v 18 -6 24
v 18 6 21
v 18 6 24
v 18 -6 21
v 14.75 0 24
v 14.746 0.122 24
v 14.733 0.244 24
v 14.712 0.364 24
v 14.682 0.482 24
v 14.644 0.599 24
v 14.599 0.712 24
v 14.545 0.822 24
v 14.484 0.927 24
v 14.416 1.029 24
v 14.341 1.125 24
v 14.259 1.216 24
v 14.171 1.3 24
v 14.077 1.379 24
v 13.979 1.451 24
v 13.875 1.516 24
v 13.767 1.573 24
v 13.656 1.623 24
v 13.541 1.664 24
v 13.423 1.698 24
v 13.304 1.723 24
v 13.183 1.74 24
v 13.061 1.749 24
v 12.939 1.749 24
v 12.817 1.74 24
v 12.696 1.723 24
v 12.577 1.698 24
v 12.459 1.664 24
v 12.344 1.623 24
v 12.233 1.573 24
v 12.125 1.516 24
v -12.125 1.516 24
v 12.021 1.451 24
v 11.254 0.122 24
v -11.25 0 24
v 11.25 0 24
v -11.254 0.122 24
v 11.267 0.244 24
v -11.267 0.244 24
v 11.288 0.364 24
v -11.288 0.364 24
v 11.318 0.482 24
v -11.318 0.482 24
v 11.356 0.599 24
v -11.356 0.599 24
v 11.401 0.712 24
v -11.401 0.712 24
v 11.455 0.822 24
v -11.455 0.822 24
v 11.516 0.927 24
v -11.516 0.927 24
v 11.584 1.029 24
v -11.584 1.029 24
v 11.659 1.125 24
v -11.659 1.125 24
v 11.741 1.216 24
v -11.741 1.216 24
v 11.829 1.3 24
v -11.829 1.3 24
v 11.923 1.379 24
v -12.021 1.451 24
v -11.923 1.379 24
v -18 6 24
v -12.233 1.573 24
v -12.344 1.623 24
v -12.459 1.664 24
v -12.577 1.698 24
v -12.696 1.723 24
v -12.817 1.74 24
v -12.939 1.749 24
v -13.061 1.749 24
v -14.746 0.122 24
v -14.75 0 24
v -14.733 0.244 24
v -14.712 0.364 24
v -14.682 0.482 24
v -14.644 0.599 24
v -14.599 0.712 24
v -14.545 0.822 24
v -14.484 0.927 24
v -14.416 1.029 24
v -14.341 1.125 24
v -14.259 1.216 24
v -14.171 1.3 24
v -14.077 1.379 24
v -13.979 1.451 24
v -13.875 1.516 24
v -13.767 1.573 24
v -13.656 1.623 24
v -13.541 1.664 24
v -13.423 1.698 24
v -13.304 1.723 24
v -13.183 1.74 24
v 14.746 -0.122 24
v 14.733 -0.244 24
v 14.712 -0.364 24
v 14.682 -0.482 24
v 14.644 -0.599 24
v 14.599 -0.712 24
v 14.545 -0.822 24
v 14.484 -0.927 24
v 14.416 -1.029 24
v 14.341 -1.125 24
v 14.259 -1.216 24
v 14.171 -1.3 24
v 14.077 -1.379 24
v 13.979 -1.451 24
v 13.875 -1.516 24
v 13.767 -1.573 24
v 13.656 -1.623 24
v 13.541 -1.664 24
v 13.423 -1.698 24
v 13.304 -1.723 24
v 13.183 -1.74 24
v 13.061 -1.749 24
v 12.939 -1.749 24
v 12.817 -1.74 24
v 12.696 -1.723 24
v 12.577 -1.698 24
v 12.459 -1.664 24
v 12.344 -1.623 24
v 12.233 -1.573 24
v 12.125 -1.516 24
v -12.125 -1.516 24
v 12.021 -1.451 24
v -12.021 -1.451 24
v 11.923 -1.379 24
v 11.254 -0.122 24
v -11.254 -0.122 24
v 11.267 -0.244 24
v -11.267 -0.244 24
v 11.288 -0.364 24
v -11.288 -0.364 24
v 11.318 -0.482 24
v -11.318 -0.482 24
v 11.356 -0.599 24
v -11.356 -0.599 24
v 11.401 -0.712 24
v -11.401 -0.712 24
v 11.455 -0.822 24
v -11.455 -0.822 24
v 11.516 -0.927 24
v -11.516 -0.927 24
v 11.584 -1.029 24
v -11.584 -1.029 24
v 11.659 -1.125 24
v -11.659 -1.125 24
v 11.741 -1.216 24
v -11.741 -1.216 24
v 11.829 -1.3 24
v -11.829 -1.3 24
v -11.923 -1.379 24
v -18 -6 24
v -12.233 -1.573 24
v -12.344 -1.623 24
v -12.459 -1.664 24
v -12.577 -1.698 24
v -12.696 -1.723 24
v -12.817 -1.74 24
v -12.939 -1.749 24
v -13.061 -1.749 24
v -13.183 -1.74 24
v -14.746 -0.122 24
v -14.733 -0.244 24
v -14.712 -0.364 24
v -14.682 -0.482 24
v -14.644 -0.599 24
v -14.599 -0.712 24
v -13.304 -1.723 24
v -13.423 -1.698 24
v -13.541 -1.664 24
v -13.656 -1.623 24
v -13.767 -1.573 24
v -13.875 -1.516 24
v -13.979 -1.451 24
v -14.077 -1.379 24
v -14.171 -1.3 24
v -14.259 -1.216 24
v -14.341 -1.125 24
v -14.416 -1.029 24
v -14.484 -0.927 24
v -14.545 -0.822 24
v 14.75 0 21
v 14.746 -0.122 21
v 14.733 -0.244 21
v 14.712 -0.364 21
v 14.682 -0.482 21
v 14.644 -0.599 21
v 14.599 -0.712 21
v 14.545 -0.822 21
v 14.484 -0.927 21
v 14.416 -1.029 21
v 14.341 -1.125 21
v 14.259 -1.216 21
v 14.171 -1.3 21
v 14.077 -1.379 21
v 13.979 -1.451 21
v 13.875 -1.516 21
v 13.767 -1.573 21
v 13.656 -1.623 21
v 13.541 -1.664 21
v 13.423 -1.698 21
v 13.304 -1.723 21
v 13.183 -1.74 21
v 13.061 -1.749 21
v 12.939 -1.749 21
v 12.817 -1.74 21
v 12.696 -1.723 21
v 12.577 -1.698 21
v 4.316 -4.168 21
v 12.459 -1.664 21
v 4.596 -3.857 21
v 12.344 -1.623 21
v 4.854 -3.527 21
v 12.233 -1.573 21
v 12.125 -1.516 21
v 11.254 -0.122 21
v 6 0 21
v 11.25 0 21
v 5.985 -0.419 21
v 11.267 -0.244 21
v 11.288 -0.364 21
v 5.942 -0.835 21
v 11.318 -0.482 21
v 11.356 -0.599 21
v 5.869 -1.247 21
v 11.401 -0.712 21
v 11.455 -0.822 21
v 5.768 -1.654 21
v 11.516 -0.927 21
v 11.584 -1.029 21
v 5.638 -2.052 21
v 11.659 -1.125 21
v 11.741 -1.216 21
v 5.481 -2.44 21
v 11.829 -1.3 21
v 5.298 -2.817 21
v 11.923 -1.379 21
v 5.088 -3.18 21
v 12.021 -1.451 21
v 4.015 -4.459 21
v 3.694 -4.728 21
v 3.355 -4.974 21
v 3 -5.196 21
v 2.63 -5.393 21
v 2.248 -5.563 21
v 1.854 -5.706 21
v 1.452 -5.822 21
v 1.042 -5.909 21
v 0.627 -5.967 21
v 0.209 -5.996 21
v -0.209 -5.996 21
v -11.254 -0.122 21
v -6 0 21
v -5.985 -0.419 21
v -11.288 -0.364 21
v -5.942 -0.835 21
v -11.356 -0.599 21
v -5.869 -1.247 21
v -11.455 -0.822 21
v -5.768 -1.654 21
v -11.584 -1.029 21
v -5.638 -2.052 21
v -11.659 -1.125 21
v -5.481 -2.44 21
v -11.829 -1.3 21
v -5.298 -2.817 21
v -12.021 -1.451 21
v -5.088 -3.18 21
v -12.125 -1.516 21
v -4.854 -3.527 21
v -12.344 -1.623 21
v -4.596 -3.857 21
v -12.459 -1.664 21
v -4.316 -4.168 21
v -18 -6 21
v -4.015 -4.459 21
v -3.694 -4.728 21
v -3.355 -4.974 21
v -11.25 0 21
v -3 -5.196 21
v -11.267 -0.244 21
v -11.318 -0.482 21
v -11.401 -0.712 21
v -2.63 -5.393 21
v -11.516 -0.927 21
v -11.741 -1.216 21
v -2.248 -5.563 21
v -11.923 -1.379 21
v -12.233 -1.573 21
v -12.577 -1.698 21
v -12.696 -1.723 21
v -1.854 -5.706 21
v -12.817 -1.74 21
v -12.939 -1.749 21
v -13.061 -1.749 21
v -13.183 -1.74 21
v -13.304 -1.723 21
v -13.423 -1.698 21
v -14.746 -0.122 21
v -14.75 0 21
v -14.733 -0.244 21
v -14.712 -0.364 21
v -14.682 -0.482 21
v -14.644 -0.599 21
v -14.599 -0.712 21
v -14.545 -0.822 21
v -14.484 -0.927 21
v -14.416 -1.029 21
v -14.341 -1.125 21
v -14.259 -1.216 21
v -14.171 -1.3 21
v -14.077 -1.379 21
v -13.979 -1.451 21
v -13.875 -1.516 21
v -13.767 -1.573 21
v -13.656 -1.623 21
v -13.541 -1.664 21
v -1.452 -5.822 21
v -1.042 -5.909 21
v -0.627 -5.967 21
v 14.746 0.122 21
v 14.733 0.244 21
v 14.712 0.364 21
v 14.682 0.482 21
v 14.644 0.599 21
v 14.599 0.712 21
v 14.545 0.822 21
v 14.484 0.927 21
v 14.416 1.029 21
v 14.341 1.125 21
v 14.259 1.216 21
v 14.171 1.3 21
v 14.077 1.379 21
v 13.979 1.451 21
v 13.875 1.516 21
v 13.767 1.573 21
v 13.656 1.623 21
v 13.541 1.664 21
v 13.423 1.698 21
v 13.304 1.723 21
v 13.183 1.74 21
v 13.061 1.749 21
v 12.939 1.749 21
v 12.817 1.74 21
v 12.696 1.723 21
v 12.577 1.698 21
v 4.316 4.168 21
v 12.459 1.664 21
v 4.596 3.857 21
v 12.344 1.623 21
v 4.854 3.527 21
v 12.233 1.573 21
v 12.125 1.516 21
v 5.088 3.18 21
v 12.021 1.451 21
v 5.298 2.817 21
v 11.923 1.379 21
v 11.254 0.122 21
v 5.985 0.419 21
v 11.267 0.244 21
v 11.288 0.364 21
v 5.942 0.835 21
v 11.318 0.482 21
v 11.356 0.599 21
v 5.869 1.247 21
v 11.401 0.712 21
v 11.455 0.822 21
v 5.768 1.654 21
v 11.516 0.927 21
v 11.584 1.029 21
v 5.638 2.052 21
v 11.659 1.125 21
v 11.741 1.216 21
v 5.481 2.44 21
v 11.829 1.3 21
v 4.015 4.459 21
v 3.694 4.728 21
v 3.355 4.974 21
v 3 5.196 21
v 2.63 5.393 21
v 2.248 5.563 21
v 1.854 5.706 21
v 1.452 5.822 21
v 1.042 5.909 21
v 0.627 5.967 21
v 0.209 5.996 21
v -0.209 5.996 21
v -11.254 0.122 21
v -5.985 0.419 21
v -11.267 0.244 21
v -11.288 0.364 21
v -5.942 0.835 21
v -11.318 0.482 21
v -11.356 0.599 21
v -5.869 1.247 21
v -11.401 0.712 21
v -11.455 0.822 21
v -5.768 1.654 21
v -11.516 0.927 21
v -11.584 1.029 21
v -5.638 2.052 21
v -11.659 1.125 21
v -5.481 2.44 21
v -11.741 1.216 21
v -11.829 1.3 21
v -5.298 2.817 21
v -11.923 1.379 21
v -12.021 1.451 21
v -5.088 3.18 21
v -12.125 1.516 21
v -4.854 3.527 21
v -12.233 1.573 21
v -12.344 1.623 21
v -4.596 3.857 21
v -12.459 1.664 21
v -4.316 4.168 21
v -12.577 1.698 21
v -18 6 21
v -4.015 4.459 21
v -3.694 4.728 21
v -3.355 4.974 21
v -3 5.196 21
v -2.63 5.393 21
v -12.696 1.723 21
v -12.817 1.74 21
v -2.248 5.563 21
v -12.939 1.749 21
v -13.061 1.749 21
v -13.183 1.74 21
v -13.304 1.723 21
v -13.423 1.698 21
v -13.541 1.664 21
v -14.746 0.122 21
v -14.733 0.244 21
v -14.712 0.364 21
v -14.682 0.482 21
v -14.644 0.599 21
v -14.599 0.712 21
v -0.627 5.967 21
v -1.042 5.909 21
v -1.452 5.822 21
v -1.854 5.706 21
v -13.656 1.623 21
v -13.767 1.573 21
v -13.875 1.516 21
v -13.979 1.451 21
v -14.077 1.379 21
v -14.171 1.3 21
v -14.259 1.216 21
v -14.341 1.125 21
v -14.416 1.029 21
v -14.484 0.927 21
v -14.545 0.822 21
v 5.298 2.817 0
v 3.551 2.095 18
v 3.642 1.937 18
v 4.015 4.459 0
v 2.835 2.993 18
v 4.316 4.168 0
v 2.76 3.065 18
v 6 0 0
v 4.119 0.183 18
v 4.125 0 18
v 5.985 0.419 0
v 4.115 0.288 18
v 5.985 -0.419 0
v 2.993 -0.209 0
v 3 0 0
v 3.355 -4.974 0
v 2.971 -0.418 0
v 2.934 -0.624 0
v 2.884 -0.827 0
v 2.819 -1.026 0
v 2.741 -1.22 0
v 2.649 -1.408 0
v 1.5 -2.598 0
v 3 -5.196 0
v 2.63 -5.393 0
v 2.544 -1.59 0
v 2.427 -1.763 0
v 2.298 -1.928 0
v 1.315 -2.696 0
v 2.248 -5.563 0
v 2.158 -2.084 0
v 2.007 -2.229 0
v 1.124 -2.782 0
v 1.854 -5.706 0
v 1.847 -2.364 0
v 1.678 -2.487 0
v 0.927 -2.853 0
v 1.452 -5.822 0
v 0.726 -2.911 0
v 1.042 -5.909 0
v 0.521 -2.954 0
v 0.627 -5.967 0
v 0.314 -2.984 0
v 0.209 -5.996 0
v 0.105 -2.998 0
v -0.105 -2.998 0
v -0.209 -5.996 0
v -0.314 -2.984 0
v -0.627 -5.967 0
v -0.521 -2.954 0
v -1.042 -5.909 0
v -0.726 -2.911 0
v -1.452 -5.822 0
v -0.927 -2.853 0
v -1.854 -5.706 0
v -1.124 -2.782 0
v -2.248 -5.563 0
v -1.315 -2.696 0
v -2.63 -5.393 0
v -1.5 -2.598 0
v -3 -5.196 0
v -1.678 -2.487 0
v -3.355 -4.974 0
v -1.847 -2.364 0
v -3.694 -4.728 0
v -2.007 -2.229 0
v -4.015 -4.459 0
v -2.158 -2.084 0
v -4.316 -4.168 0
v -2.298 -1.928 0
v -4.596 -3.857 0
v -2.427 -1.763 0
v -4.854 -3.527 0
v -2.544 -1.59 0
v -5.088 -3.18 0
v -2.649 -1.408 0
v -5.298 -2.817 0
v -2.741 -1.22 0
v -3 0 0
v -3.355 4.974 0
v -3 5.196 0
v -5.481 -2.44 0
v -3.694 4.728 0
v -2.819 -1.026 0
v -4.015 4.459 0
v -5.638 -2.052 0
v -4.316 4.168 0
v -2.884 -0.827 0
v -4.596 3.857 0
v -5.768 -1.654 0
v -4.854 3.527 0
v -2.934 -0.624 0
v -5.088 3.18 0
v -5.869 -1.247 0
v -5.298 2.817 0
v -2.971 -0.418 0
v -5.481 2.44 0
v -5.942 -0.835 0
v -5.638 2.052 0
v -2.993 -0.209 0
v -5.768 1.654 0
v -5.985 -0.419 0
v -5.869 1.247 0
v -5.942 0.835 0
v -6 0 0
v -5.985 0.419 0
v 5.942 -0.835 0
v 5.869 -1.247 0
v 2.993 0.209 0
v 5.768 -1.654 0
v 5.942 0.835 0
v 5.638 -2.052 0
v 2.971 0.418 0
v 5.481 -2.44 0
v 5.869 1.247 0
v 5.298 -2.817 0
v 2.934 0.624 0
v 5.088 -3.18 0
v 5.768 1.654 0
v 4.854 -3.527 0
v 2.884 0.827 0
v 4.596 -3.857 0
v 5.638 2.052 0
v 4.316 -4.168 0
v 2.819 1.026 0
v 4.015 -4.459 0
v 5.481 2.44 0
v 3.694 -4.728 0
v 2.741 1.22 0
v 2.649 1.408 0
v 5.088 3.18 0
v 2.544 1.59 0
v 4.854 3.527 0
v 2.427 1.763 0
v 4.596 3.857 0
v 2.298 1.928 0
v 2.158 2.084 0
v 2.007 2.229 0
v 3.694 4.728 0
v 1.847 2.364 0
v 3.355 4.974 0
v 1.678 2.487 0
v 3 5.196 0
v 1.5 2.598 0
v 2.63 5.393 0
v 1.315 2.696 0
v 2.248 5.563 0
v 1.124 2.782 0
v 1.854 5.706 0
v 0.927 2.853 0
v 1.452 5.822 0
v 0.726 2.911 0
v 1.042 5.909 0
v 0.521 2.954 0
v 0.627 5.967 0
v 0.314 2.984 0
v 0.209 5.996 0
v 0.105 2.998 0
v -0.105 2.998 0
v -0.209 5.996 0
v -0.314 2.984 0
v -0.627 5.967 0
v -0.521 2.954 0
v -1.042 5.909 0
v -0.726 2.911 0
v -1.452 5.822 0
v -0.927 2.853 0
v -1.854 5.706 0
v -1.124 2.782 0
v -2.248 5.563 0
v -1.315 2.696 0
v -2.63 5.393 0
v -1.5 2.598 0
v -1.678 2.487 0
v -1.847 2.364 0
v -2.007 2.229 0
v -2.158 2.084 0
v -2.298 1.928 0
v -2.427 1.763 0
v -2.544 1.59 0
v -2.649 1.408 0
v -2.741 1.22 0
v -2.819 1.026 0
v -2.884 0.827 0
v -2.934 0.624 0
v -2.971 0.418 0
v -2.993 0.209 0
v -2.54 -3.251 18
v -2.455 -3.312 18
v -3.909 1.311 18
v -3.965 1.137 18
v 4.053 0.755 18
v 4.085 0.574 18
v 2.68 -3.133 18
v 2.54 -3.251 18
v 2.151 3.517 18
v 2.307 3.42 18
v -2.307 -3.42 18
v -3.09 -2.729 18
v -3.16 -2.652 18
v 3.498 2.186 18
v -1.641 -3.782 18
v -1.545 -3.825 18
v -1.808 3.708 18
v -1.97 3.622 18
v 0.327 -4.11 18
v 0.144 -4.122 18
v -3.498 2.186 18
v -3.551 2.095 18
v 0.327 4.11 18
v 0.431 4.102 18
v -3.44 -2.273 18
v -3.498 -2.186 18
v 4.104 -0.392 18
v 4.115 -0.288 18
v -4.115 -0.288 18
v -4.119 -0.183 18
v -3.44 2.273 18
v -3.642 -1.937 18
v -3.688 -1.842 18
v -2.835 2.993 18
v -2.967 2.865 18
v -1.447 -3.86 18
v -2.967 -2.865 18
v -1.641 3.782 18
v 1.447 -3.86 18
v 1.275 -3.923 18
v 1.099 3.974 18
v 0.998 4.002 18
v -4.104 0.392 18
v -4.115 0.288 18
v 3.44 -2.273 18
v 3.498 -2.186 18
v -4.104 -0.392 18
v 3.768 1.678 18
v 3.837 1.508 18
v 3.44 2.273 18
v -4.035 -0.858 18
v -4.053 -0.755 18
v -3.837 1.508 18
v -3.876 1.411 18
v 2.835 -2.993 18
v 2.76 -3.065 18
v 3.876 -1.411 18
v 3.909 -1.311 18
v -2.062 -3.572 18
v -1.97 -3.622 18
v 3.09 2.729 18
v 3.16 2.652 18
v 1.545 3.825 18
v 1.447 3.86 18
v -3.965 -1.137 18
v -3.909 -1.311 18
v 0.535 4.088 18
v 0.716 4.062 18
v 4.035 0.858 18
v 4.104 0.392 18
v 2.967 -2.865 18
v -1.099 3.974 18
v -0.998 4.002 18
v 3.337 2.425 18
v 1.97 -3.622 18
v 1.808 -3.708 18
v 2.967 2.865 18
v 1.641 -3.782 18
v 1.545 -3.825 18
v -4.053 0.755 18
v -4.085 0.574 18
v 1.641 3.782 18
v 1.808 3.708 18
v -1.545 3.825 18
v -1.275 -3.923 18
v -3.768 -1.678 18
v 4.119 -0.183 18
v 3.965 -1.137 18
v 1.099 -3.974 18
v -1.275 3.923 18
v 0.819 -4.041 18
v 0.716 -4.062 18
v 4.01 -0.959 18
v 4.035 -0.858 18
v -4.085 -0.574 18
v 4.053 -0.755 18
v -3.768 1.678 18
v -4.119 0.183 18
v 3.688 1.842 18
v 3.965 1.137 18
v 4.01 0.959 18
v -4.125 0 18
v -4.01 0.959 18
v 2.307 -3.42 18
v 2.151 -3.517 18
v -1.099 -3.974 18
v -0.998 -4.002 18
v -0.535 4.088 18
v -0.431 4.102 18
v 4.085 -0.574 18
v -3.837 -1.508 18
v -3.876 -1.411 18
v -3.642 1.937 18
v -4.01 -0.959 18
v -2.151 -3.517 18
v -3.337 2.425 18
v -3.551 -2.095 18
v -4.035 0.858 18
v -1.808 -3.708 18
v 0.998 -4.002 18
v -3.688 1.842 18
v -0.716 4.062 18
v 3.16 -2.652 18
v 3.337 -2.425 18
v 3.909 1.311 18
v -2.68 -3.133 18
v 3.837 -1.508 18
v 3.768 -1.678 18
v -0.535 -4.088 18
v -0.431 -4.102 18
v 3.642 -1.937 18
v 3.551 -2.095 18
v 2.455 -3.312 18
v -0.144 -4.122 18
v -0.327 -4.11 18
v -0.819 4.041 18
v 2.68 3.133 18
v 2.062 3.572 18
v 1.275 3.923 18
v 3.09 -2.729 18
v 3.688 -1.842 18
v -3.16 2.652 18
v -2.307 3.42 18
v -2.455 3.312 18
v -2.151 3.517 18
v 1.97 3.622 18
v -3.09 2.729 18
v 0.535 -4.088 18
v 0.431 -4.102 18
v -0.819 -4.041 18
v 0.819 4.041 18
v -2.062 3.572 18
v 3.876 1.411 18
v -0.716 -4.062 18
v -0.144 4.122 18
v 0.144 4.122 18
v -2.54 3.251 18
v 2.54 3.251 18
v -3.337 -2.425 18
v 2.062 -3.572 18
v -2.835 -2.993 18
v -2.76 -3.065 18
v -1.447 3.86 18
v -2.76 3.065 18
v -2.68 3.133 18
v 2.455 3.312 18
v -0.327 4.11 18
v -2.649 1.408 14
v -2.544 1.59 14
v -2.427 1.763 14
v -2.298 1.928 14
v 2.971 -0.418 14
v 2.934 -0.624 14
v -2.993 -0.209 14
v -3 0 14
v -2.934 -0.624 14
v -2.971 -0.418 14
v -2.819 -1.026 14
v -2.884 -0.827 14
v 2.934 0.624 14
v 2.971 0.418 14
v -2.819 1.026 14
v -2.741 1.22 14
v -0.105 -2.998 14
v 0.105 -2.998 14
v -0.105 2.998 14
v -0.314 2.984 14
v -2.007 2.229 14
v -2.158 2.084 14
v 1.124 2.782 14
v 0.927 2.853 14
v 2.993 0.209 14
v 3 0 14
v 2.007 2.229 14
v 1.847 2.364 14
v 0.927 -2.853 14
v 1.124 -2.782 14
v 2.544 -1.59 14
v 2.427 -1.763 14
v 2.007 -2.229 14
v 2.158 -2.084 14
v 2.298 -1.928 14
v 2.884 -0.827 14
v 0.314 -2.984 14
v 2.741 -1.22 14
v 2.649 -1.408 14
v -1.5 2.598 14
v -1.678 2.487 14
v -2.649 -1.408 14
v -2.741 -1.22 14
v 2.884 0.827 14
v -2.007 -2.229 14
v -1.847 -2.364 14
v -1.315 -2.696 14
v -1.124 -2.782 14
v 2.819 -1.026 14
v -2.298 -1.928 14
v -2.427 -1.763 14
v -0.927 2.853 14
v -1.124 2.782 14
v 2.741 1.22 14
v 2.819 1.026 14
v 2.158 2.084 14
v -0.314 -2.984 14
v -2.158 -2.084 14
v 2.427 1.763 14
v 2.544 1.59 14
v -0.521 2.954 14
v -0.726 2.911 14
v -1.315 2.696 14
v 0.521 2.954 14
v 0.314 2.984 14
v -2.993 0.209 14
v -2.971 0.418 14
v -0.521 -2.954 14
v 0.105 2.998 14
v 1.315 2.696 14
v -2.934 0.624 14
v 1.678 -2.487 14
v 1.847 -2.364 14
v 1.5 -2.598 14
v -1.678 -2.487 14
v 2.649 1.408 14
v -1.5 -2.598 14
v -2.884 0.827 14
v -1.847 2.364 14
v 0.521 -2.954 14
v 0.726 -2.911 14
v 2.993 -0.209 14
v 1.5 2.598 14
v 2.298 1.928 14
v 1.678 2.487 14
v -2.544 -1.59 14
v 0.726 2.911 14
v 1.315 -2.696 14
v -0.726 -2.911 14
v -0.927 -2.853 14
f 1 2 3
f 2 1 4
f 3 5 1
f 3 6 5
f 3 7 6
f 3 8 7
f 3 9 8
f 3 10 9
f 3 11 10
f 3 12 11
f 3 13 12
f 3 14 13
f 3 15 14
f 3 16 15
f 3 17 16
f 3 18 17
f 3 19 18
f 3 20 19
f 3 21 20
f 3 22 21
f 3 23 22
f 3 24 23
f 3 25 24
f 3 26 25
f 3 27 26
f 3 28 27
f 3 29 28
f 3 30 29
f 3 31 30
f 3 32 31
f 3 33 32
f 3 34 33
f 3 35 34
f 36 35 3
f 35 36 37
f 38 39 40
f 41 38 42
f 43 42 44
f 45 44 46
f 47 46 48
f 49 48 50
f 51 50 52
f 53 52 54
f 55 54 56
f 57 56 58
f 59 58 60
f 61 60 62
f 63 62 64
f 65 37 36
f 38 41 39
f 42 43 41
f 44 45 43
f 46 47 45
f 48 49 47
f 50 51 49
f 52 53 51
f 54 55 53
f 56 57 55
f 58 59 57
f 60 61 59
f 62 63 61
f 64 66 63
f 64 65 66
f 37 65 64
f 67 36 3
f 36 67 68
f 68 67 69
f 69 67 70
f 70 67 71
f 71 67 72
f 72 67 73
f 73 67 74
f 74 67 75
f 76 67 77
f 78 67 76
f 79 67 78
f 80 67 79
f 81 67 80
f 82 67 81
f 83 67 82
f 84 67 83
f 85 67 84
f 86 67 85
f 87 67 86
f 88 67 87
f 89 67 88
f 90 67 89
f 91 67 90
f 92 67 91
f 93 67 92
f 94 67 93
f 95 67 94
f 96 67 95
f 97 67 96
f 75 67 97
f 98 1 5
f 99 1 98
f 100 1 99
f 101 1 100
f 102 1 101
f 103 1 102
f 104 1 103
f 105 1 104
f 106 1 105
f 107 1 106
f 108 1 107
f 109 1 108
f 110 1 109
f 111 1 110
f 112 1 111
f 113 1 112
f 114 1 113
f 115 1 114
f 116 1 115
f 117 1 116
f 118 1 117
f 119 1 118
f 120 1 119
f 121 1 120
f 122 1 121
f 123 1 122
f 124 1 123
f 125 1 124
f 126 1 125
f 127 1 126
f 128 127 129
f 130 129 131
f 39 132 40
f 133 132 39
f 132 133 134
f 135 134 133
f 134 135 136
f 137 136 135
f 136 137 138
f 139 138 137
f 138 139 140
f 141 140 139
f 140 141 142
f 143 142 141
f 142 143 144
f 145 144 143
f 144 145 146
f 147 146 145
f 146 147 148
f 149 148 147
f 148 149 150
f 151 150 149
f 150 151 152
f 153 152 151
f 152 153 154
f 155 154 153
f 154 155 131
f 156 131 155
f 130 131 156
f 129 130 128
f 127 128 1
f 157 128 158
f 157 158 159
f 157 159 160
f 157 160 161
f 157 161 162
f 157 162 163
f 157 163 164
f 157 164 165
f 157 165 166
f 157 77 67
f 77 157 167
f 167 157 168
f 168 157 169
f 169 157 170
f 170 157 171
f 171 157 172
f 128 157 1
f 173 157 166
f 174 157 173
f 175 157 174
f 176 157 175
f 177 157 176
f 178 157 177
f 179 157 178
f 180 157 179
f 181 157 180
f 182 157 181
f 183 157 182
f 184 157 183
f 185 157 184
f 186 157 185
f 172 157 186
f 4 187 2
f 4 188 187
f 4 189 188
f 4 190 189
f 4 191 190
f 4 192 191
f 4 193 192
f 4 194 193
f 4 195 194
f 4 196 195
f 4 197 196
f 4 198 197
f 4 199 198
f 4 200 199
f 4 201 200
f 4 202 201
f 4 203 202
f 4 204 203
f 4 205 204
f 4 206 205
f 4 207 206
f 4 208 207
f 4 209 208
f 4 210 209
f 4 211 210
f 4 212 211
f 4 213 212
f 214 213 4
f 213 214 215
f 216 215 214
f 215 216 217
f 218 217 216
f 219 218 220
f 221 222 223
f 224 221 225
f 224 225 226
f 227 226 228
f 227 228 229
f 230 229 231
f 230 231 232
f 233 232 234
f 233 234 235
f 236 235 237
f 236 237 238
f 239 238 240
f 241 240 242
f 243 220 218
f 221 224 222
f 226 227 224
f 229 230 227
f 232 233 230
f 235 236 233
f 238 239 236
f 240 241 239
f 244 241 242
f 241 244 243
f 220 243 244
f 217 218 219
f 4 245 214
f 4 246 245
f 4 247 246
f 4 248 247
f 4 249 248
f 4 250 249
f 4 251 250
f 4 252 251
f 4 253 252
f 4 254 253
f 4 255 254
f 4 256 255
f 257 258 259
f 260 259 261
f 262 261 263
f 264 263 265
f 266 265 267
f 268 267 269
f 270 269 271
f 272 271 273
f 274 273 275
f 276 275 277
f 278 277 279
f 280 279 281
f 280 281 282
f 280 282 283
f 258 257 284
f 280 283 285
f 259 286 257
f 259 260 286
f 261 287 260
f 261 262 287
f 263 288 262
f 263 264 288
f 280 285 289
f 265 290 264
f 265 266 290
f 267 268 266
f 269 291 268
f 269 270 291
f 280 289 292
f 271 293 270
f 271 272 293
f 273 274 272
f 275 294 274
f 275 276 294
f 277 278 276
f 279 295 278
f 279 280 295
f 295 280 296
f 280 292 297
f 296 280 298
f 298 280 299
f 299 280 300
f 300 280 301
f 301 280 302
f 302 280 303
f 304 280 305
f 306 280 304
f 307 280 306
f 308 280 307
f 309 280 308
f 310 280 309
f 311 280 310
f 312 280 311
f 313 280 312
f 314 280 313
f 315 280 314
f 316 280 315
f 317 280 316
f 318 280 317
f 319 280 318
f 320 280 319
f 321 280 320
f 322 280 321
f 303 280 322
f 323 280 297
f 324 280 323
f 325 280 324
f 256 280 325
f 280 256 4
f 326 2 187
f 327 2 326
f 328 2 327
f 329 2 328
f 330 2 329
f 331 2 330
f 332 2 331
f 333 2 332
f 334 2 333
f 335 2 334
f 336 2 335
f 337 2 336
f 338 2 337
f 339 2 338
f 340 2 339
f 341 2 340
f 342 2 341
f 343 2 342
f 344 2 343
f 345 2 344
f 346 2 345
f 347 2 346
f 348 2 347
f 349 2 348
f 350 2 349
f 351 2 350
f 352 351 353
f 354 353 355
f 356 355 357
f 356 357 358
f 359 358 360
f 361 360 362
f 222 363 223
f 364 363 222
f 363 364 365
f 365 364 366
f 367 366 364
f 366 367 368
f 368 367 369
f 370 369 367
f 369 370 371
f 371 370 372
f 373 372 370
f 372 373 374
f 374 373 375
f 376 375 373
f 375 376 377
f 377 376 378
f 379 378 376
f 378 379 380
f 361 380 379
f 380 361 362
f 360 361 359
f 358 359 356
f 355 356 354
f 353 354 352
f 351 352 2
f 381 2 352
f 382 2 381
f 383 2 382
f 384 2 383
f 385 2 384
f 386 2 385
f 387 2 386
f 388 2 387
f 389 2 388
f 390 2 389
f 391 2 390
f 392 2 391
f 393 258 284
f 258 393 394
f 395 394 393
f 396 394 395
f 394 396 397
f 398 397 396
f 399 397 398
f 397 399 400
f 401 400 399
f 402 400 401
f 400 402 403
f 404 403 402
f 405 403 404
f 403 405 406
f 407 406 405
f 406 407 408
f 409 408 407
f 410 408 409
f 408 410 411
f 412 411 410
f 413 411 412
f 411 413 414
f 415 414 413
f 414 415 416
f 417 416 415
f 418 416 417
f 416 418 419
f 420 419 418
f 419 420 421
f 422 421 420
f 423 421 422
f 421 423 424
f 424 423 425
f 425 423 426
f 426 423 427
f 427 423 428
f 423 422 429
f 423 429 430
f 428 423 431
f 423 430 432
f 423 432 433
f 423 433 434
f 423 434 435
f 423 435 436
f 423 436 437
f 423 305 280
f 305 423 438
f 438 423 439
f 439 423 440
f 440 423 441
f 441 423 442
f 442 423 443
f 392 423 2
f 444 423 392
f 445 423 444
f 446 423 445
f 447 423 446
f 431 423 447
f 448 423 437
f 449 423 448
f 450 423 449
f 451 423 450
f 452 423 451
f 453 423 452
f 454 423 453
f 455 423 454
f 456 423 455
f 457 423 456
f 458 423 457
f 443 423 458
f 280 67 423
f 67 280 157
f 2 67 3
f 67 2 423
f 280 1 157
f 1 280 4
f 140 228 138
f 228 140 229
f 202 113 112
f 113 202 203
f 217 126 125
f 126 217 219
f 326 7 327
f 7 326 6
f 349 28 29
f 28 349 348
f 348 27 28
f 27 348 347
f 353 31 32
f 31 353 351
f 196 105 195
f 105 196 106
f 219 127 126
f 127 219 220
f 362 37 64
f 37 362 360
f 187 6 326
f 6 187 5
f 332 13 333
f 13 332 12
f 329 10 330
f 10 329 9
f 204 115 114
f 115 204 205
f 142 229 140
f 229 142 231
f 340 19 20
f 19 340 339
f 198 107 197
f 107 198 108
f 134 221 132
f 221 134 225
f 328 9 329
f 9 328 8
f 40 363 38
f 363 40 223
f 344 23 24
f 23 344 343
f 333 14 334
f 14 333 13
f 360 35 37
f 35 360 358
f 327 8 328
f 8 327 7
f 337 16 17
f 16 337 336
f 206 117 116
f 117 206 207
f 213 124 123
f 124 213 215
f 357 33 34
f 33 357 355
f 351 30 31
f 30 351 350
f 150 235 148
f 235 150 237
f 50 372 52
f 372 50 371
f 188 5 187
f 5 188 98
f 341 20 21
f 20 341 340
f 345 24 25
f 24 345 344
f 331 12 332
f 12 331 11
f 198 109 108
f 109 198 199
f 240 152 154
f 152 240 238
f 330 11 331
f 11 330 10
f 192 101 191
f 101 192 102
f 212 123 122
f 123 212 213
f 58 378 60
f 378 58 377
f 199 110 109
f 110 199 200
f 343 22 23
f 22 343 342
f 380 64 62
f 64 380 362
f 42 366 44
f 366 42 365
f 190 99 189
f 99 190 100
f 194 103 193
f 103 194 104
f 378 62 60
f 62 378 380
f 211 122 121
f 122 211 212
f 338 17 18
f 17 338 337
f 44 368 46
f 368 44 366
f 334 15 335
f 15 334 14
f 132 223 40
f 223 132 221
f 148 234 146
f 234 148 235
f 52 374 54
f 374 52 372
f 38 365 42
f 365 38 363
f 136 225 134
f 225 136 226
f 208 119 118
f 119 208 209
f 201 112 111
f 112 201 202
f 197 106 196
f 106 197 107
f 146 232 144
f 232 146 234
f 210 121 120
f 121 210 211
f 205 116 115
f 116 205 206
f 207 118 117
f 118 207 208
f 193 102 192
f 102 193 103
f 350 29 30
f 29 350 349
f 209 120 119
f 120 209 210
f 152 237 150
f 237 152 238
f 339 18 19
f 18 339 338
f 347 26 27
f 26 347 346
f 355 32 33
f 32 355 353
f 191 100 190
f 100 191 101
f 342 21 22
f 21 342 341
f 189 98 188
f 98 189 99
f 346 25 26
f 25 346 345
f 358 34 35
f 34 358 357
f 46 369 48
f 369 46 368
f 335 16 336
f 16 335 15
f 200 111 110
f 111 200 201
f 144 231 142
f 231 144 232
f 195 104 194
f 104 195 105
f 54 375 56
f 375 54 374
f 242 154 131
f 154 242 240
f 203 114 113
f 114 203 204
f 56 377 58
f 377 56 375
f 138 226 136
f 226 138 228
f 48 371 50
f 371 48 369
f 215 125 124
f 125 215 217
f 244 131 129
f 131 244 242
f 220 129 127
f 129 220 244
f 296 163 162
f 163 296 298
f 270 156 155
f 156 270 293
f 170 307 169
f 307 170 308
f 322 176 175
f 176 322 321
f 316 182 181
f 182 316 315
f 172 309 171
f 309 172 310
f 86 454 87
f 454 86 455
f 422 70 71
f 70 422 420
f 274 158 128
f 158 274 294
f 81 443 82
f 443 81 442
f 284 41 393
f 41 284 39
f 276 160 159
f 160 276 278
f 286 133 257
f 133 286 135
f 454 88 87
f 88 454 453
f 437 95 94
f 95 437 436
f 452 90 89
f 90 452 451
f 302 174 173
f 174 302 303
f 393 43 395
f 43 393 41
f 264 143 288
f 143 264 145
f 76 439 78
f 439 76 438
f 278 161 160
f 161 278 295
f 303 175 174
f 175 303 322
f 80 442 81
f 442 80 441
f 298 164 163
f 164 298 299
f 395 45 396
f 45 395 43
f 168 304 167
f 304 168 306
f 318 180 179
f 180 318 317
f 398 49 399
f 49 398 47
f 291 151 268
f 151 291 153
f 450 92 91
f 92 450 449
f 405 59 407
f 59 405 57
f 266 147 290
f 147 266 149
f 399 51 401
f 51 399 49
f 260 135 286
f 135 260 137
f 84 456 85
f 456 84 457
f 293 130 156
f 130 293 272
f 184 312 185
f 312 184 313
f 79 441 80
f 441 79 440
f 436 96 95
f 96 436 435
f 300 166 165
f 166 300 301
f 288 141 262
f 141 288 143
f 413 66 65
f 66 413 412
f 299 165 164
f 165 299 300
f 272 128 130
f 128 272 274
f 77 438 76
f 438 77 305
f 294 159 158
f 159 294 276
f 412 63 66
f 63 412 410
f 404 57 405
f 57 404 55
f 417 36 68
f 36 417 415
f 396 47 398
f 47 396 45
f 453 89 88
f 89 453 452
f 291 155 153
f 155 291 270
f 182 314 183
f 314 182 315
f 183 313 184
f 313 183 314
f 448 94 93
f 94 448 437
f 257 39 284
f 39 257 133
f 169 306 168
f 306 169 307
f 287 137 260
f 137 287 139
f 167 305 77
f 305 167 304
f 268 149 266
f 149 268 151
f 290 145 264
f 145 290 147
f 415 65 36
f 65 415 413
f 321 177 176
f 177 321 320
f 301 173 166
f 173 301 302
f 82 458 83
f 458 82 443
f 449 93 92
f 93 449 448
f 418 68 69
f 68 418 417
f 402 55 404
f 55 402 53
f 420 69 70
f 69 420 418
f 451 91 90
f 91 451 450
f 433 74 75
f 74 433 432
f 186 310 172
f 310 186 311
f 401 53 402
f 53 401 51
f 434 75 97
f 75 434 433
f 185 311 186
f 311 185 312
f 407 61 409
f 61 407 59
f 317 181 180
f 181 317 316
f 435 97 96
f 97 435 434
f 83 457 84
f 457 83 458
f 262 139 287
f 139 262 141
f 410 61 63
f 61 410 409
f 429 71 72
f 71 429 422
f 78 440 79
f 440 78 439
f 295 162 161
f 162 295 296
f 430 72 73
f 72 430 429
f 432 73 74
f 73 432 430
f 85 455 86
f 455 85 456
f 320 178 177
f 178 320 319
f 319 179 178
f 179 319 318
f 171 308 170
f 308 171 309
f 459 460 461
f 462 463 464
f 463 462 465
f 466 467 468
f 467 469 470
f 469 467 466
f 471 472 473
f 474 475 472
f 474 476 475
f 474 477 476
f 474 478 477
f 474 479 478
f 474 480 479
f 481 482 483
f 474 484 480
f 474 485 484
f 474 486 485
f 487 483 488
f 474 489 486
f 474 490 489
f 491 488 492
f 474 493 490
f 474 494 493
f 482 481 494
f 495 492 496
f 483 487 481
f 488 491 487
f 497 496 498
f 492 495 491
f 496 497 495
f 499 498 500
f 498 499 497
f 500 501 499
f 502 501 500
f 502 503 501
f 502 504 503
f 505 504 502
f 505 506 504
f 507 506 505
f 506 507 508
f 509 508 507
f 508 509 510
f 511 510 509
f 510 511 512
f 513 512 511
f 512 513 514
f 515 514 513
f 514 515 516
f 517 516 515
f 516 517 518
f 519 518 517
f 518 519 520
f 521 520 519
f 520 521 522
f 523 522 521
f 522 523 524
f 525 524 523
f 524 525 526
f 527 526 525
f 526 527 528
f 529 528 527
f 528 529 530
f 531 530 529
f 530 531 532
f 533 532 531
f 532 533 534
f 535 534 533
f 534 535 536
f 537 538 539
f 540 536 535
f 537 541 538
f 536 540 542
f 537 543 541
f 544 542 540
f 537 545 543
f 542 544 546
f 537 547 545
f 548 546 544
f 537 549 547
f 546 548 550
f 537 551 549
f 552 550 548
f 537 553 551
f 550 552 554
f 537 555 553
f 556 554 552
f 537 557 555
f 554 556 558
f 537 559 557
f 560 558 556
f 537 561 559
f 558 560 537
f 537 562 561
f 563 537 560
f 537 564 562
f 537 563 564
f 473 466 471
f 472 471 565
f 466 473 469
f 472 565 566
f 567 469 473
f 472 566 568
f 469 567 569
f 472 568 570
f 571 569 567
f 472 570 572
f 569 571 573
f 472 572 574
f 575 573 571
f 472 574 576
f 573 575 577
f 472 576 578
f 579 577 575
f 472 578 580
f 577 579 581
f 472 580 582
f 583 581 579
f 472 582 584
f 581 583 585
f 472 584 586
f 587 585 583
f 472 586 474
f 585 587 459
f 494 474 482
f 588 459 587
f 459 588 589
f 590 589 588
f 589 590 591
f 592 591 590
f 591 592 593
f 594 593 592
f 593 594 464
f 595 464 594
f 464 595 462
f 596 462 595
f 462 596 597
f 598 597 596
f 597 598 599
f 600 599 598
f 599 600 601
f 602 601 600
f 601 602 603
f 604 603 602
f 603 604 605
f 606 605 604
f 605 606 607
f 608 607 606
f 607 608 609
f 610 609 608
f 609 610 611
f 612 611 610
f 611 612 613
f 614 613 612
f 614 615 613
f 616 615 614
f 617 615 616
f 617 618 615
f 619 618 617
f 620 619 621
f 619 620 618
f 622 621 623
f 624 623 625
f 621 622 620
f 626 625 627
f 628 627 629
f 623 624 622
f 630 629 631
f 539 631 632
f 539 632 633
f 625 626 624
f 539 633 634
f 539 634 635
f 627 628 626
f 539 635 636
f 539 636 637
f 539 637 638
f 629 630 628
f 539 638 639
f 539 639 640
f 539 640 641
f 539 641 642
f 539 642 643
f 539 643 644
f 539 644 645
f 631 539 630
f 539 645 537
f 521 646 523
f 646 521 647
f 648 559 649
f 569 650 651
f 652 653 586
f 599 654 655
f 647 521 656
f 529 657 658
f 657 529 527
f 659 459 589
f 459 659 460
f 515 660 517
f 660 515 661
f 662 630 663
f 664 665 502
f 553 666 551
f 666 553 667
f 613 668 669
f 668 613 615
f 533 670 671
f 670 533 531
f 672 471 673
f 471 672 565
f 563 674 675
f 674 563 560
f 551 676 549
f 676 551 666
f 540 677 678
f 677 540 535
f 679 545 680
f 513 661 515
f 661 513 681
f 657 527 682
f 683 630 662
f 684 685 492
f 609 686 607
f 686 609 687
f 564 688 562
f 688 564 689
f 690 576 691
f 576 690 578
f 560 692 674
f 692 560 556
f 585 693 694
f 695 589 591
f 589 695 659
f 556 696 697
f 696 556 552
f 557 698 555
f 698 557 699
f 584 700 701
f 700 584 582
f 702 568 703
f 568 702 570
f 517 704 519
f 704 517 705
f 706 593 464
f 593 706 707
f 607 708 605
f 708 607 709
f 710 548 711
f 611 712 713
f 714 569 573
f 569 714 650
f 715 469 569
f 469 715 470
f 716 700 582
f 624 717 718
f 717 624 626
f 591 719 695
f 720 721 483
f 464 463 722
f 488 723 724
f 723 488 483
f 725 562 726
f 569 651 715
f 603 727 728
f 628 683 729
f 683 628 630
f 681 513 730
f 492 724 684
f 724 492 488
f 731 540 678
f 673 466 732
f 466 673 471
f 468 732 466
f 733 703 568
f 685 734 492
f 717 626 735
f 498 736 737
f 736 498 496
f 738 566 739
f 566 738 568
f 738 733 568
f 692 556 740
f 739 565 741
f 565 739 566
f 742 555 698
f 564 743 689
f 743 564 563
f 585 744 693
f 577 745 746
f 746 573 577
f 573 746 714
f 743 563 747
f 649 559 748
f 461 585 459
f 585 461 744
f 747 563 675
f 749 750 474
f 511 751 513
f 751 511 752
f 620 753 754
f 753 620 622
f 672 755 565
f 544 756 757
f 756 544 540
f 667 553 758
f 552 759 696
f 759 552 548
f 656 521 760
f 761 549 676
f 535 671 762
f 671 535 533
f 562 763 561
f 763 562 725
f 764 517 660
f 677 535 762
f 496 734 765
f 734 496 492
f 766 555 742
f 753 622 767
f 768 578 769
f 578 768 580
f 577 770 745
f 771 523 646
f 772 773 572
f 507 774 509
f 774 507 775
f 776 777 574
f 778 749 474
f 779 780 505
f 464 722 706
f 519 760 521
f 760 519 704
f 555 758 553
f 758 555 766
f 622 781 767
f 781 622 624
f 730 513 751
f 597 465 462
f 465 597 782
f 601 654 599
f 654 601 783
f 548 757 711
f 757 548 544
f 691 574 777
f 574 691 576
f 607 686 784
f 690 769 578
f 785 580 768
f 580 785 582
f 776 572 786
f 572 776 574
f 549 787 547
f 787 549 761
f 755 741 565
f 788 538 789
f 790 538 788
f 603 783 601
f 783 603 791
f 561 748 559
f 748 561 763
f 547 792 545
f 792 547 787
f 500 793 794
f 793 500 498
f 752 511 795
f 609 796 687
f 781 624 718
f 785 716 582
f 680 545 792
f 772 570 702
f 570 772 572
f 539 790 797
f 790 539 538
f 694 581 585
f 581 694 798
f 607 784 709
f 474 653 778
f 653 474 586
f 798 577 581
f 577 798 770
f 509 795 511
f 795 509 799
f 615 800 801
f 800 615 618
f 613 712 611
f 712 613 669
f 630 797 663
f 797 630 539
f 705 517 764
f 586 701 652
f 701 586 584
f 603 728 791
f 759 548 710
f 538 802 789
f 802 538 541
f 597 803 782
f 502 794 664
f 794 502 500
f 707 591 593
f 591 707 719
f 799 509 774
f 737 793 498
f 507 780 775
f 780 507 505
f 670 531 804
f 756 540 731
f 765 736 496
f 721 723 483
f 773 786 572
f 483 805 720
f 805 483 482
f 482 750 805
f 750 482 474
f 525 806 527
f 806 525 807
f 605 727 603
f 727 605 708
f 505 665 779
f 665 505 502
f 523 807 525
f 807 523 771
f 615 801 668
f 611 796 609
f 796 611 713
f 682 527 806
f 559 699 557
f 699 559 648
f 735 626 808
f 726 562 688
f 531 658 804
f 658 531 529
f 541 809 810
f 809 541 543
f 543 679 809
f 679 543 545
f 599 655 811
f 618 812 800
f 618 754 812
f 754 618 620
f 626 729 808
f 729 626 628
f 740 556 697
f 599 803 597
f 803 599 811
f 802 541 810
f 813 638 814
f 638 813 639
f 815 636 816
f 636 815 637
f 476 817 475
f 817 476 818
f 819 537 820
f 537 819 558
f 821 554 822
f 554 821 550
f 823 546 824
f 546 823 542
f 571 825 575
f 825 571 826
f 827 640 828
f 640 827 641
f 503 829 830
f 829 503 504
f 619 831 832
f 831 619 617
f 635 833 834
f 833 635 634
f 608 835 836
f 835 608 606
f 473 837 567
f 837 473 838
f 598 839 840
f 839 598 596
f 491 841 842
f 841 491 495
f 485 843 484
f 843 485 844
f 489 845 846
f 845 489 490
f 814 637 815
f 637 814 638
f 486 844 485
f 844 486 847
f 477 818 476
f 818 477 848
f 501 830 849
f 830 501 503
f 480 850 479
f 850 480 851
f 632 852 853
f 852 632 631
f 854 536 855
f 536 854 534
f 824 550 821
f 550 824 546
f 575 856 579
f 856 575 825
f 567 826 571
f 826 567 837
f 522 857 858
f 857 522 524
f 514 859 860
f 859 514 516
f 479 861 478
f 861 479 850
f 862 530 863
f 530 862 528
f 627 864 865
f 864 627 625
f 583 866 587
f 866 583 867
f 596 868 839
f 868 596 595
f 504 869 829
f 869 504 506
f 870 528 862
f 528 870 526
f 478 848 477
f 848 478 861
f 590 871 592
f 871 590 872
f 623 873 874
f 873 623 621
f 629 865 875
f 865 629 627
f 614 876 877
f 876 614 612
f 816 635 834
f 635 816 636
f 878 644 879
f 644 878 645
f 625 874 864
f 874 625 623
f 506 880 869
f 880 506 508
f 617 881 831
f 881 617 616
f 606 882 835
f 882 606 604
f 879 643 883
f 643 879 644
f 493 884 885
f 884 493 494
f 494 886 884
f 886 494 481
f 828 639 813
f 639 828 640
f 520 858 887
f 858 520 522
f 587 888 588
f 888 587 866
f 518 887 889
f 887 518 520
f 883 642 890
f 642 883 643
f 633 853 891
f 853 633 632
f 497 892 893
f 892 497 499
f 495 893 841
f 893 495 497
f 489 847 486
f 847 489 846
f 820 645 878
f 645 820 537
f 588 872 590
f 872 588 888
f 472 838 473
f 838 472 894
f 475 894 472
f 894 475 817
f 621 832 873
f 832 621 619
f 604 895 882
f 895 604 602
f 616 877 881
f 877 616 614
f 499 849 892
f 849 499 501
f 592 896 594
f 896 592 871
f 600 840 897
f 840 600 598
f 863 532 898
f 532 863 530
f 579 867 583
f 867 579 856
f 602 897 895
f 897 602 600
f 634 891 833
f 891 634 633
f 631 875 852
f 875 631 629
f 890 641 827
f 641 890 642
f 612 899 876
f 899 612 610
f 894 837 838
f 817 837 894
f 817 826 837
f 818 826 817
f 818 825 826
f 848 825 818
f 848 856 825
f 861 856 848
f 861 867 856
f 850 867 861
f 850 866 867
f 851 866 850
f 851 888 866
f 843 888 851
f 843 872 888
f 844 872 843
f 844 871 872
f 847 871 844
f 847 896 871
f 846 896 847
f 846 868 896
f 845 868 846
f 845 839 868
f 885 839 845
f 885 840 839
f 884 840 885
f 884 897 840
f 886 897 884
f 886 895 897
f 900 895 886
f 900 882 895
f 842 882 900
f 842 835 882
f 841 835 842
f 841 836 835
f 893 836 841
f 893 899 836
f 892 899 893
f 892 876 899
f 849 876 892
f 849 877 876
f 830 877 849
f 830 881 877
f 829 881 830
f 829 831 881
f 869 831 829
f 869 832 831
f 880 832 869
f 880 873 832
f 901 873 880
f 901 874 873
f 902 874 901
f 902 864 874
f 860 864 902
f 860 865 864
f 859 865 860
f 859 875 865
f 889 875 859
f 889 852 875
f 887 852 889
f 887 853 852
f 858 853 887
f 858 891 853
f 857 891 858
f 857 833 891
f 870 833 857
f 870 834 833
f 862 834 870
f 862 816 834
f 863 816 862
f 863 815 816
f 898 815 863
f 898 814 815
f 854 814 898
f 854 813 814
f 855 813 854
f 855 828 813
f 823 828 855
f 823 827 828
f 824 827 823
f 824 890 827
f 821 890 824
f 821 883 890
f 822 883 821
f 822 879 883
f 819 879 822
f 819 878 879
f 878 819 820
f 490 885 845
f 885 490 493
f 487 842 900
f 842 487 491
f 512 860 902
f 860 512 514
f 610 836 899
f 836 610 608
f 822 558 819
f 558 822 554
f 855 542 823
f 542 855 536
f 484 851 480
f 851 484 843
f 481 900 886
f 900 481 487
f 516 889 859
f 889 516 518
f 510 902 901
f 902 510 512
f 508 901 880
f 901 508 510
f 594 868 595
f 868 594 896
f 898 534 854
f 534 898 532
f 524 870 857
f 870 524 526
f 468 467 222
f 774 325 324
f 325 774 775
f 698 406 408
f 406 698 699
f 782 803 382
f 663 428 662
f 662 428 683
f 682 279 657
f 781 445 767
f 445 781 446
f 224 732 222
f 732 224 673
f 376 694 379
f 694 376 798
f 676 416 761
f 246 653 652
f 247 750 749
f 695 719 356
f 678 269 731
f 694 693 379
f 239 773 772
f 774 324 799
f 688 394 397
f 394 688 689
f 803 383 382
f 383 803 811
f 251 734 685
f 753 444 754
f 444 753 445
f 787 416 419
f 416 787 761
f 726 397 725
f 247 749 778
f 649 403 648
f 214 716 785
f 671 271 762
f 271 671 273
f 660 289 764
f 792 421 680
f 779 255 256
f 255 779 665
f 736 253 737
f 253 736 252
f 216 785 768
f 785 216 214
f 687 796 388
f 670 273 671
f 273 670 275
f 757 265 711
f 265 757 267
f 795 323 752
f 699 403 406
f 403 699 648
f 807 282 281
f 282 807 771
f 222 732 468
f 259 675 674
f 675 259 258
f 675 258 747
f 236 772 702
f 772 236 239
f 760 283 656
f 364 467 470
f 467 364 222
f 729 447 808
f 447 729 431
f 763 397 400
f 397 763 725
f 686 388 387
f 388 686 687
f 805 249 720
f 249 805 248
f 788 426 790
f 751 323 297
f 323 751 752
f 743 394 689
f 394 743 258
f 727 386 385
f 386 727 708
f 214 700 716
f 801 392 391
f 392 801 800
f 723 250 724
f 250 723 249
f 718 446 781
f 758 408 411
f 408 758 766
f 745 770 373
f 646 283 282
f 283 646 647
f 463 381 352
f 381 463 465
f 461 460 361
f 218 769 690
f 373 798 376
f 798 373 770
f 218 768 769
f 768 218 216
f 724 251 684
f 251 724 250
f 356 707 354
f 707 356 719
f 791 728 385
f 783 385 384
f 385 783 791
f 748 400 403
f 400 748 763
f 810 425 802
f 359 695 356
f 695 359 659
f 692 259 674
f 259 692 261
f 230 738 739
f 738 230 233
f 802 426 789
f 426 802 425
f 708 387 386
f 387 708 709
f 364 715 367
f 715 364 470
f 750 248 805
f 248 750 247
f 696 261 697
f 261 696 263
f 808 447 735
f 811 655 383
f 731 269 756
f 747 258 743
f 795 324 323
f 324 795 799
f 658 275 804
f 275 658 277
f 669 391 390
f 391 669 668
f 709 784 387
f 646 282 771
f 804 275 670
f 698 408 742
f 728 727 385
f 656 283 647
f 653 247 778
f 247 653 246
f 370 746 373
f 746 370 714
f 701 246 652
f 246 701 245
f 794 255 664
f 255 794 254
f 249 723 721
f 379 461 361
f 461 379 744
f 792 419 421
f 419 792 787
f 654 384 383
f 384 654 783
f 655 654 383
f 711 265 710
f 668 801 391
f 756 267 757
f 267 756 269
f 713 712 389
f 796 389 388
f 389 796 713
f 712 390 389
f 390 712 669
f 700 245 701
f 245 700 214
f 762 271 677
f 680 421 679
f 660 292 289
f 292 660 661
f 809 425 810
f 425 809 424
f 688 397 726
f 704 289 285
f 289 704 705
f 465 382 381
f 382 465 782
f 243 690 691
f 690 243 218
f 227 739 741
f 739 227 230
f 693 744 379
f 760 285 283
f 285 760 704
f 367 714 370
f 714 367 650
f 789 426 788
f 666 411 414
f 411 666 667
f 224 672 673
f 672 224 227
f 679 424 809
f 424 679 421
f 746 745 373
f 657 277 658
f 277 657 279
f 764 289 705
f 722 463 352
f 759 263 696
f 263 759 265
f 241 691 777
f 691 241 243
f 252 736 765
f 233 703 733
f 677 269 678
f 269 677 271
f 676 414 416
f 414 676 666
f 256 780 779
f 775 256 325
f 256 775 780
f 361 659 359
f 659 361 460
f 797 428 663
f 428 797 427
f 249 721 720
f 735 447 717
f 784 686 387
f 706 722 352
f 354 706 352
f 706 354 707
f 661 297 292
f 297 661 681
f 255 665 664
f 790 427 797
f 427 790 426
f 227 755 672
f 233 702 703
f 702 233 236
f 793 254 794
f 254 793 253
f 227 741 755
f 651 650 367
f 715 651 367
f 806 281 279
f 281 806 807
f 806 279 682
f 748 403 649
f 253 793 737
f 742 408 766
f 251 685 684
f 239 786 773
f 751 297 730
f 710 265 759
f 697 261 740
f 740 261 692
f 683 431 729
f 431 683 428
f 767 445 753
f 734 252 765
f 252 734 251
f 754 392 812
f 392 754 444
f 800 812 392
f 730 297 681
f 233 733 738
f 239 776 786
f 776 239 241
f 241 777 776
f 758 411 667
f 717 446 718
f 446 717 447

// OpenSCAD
$fn=90;

outterDiameter = 12;
overallHeight = 24;
difference(){
	cylinder(h=overallHeight, d1=outterDiameter, d2=outterDiameter-5);
	#cylinder(h=14, d=6);
}

cubeLength = 3*outterDiameter;
cubeWidth = outterDiameter;
cubeHeight = 3;
difference(){
	translate([-0.5*cubeLength, -0.5*cubeWidth, overallHeight-cubeHeight])
		cube([cubeLength, cubeWidth, cubeHeight]);
	translate([0.5*cubeLength-5, 0, overallHeight-cubeHeight])
		#cylinder(h=cubeHeight, d=3.5);
	translate([-0.5*cubeLength+5, 0, overallHeight-cubeHeight])
		#cylinder(h=cubeHeight, d=3.5);
}

transitionHeight=4;
translate([0,0,overallHeight-transitionHeight-cubeHeight])
	cylinder(h=transitionHeight, d1=outterDiameter-5, d2=outterDiameter);
